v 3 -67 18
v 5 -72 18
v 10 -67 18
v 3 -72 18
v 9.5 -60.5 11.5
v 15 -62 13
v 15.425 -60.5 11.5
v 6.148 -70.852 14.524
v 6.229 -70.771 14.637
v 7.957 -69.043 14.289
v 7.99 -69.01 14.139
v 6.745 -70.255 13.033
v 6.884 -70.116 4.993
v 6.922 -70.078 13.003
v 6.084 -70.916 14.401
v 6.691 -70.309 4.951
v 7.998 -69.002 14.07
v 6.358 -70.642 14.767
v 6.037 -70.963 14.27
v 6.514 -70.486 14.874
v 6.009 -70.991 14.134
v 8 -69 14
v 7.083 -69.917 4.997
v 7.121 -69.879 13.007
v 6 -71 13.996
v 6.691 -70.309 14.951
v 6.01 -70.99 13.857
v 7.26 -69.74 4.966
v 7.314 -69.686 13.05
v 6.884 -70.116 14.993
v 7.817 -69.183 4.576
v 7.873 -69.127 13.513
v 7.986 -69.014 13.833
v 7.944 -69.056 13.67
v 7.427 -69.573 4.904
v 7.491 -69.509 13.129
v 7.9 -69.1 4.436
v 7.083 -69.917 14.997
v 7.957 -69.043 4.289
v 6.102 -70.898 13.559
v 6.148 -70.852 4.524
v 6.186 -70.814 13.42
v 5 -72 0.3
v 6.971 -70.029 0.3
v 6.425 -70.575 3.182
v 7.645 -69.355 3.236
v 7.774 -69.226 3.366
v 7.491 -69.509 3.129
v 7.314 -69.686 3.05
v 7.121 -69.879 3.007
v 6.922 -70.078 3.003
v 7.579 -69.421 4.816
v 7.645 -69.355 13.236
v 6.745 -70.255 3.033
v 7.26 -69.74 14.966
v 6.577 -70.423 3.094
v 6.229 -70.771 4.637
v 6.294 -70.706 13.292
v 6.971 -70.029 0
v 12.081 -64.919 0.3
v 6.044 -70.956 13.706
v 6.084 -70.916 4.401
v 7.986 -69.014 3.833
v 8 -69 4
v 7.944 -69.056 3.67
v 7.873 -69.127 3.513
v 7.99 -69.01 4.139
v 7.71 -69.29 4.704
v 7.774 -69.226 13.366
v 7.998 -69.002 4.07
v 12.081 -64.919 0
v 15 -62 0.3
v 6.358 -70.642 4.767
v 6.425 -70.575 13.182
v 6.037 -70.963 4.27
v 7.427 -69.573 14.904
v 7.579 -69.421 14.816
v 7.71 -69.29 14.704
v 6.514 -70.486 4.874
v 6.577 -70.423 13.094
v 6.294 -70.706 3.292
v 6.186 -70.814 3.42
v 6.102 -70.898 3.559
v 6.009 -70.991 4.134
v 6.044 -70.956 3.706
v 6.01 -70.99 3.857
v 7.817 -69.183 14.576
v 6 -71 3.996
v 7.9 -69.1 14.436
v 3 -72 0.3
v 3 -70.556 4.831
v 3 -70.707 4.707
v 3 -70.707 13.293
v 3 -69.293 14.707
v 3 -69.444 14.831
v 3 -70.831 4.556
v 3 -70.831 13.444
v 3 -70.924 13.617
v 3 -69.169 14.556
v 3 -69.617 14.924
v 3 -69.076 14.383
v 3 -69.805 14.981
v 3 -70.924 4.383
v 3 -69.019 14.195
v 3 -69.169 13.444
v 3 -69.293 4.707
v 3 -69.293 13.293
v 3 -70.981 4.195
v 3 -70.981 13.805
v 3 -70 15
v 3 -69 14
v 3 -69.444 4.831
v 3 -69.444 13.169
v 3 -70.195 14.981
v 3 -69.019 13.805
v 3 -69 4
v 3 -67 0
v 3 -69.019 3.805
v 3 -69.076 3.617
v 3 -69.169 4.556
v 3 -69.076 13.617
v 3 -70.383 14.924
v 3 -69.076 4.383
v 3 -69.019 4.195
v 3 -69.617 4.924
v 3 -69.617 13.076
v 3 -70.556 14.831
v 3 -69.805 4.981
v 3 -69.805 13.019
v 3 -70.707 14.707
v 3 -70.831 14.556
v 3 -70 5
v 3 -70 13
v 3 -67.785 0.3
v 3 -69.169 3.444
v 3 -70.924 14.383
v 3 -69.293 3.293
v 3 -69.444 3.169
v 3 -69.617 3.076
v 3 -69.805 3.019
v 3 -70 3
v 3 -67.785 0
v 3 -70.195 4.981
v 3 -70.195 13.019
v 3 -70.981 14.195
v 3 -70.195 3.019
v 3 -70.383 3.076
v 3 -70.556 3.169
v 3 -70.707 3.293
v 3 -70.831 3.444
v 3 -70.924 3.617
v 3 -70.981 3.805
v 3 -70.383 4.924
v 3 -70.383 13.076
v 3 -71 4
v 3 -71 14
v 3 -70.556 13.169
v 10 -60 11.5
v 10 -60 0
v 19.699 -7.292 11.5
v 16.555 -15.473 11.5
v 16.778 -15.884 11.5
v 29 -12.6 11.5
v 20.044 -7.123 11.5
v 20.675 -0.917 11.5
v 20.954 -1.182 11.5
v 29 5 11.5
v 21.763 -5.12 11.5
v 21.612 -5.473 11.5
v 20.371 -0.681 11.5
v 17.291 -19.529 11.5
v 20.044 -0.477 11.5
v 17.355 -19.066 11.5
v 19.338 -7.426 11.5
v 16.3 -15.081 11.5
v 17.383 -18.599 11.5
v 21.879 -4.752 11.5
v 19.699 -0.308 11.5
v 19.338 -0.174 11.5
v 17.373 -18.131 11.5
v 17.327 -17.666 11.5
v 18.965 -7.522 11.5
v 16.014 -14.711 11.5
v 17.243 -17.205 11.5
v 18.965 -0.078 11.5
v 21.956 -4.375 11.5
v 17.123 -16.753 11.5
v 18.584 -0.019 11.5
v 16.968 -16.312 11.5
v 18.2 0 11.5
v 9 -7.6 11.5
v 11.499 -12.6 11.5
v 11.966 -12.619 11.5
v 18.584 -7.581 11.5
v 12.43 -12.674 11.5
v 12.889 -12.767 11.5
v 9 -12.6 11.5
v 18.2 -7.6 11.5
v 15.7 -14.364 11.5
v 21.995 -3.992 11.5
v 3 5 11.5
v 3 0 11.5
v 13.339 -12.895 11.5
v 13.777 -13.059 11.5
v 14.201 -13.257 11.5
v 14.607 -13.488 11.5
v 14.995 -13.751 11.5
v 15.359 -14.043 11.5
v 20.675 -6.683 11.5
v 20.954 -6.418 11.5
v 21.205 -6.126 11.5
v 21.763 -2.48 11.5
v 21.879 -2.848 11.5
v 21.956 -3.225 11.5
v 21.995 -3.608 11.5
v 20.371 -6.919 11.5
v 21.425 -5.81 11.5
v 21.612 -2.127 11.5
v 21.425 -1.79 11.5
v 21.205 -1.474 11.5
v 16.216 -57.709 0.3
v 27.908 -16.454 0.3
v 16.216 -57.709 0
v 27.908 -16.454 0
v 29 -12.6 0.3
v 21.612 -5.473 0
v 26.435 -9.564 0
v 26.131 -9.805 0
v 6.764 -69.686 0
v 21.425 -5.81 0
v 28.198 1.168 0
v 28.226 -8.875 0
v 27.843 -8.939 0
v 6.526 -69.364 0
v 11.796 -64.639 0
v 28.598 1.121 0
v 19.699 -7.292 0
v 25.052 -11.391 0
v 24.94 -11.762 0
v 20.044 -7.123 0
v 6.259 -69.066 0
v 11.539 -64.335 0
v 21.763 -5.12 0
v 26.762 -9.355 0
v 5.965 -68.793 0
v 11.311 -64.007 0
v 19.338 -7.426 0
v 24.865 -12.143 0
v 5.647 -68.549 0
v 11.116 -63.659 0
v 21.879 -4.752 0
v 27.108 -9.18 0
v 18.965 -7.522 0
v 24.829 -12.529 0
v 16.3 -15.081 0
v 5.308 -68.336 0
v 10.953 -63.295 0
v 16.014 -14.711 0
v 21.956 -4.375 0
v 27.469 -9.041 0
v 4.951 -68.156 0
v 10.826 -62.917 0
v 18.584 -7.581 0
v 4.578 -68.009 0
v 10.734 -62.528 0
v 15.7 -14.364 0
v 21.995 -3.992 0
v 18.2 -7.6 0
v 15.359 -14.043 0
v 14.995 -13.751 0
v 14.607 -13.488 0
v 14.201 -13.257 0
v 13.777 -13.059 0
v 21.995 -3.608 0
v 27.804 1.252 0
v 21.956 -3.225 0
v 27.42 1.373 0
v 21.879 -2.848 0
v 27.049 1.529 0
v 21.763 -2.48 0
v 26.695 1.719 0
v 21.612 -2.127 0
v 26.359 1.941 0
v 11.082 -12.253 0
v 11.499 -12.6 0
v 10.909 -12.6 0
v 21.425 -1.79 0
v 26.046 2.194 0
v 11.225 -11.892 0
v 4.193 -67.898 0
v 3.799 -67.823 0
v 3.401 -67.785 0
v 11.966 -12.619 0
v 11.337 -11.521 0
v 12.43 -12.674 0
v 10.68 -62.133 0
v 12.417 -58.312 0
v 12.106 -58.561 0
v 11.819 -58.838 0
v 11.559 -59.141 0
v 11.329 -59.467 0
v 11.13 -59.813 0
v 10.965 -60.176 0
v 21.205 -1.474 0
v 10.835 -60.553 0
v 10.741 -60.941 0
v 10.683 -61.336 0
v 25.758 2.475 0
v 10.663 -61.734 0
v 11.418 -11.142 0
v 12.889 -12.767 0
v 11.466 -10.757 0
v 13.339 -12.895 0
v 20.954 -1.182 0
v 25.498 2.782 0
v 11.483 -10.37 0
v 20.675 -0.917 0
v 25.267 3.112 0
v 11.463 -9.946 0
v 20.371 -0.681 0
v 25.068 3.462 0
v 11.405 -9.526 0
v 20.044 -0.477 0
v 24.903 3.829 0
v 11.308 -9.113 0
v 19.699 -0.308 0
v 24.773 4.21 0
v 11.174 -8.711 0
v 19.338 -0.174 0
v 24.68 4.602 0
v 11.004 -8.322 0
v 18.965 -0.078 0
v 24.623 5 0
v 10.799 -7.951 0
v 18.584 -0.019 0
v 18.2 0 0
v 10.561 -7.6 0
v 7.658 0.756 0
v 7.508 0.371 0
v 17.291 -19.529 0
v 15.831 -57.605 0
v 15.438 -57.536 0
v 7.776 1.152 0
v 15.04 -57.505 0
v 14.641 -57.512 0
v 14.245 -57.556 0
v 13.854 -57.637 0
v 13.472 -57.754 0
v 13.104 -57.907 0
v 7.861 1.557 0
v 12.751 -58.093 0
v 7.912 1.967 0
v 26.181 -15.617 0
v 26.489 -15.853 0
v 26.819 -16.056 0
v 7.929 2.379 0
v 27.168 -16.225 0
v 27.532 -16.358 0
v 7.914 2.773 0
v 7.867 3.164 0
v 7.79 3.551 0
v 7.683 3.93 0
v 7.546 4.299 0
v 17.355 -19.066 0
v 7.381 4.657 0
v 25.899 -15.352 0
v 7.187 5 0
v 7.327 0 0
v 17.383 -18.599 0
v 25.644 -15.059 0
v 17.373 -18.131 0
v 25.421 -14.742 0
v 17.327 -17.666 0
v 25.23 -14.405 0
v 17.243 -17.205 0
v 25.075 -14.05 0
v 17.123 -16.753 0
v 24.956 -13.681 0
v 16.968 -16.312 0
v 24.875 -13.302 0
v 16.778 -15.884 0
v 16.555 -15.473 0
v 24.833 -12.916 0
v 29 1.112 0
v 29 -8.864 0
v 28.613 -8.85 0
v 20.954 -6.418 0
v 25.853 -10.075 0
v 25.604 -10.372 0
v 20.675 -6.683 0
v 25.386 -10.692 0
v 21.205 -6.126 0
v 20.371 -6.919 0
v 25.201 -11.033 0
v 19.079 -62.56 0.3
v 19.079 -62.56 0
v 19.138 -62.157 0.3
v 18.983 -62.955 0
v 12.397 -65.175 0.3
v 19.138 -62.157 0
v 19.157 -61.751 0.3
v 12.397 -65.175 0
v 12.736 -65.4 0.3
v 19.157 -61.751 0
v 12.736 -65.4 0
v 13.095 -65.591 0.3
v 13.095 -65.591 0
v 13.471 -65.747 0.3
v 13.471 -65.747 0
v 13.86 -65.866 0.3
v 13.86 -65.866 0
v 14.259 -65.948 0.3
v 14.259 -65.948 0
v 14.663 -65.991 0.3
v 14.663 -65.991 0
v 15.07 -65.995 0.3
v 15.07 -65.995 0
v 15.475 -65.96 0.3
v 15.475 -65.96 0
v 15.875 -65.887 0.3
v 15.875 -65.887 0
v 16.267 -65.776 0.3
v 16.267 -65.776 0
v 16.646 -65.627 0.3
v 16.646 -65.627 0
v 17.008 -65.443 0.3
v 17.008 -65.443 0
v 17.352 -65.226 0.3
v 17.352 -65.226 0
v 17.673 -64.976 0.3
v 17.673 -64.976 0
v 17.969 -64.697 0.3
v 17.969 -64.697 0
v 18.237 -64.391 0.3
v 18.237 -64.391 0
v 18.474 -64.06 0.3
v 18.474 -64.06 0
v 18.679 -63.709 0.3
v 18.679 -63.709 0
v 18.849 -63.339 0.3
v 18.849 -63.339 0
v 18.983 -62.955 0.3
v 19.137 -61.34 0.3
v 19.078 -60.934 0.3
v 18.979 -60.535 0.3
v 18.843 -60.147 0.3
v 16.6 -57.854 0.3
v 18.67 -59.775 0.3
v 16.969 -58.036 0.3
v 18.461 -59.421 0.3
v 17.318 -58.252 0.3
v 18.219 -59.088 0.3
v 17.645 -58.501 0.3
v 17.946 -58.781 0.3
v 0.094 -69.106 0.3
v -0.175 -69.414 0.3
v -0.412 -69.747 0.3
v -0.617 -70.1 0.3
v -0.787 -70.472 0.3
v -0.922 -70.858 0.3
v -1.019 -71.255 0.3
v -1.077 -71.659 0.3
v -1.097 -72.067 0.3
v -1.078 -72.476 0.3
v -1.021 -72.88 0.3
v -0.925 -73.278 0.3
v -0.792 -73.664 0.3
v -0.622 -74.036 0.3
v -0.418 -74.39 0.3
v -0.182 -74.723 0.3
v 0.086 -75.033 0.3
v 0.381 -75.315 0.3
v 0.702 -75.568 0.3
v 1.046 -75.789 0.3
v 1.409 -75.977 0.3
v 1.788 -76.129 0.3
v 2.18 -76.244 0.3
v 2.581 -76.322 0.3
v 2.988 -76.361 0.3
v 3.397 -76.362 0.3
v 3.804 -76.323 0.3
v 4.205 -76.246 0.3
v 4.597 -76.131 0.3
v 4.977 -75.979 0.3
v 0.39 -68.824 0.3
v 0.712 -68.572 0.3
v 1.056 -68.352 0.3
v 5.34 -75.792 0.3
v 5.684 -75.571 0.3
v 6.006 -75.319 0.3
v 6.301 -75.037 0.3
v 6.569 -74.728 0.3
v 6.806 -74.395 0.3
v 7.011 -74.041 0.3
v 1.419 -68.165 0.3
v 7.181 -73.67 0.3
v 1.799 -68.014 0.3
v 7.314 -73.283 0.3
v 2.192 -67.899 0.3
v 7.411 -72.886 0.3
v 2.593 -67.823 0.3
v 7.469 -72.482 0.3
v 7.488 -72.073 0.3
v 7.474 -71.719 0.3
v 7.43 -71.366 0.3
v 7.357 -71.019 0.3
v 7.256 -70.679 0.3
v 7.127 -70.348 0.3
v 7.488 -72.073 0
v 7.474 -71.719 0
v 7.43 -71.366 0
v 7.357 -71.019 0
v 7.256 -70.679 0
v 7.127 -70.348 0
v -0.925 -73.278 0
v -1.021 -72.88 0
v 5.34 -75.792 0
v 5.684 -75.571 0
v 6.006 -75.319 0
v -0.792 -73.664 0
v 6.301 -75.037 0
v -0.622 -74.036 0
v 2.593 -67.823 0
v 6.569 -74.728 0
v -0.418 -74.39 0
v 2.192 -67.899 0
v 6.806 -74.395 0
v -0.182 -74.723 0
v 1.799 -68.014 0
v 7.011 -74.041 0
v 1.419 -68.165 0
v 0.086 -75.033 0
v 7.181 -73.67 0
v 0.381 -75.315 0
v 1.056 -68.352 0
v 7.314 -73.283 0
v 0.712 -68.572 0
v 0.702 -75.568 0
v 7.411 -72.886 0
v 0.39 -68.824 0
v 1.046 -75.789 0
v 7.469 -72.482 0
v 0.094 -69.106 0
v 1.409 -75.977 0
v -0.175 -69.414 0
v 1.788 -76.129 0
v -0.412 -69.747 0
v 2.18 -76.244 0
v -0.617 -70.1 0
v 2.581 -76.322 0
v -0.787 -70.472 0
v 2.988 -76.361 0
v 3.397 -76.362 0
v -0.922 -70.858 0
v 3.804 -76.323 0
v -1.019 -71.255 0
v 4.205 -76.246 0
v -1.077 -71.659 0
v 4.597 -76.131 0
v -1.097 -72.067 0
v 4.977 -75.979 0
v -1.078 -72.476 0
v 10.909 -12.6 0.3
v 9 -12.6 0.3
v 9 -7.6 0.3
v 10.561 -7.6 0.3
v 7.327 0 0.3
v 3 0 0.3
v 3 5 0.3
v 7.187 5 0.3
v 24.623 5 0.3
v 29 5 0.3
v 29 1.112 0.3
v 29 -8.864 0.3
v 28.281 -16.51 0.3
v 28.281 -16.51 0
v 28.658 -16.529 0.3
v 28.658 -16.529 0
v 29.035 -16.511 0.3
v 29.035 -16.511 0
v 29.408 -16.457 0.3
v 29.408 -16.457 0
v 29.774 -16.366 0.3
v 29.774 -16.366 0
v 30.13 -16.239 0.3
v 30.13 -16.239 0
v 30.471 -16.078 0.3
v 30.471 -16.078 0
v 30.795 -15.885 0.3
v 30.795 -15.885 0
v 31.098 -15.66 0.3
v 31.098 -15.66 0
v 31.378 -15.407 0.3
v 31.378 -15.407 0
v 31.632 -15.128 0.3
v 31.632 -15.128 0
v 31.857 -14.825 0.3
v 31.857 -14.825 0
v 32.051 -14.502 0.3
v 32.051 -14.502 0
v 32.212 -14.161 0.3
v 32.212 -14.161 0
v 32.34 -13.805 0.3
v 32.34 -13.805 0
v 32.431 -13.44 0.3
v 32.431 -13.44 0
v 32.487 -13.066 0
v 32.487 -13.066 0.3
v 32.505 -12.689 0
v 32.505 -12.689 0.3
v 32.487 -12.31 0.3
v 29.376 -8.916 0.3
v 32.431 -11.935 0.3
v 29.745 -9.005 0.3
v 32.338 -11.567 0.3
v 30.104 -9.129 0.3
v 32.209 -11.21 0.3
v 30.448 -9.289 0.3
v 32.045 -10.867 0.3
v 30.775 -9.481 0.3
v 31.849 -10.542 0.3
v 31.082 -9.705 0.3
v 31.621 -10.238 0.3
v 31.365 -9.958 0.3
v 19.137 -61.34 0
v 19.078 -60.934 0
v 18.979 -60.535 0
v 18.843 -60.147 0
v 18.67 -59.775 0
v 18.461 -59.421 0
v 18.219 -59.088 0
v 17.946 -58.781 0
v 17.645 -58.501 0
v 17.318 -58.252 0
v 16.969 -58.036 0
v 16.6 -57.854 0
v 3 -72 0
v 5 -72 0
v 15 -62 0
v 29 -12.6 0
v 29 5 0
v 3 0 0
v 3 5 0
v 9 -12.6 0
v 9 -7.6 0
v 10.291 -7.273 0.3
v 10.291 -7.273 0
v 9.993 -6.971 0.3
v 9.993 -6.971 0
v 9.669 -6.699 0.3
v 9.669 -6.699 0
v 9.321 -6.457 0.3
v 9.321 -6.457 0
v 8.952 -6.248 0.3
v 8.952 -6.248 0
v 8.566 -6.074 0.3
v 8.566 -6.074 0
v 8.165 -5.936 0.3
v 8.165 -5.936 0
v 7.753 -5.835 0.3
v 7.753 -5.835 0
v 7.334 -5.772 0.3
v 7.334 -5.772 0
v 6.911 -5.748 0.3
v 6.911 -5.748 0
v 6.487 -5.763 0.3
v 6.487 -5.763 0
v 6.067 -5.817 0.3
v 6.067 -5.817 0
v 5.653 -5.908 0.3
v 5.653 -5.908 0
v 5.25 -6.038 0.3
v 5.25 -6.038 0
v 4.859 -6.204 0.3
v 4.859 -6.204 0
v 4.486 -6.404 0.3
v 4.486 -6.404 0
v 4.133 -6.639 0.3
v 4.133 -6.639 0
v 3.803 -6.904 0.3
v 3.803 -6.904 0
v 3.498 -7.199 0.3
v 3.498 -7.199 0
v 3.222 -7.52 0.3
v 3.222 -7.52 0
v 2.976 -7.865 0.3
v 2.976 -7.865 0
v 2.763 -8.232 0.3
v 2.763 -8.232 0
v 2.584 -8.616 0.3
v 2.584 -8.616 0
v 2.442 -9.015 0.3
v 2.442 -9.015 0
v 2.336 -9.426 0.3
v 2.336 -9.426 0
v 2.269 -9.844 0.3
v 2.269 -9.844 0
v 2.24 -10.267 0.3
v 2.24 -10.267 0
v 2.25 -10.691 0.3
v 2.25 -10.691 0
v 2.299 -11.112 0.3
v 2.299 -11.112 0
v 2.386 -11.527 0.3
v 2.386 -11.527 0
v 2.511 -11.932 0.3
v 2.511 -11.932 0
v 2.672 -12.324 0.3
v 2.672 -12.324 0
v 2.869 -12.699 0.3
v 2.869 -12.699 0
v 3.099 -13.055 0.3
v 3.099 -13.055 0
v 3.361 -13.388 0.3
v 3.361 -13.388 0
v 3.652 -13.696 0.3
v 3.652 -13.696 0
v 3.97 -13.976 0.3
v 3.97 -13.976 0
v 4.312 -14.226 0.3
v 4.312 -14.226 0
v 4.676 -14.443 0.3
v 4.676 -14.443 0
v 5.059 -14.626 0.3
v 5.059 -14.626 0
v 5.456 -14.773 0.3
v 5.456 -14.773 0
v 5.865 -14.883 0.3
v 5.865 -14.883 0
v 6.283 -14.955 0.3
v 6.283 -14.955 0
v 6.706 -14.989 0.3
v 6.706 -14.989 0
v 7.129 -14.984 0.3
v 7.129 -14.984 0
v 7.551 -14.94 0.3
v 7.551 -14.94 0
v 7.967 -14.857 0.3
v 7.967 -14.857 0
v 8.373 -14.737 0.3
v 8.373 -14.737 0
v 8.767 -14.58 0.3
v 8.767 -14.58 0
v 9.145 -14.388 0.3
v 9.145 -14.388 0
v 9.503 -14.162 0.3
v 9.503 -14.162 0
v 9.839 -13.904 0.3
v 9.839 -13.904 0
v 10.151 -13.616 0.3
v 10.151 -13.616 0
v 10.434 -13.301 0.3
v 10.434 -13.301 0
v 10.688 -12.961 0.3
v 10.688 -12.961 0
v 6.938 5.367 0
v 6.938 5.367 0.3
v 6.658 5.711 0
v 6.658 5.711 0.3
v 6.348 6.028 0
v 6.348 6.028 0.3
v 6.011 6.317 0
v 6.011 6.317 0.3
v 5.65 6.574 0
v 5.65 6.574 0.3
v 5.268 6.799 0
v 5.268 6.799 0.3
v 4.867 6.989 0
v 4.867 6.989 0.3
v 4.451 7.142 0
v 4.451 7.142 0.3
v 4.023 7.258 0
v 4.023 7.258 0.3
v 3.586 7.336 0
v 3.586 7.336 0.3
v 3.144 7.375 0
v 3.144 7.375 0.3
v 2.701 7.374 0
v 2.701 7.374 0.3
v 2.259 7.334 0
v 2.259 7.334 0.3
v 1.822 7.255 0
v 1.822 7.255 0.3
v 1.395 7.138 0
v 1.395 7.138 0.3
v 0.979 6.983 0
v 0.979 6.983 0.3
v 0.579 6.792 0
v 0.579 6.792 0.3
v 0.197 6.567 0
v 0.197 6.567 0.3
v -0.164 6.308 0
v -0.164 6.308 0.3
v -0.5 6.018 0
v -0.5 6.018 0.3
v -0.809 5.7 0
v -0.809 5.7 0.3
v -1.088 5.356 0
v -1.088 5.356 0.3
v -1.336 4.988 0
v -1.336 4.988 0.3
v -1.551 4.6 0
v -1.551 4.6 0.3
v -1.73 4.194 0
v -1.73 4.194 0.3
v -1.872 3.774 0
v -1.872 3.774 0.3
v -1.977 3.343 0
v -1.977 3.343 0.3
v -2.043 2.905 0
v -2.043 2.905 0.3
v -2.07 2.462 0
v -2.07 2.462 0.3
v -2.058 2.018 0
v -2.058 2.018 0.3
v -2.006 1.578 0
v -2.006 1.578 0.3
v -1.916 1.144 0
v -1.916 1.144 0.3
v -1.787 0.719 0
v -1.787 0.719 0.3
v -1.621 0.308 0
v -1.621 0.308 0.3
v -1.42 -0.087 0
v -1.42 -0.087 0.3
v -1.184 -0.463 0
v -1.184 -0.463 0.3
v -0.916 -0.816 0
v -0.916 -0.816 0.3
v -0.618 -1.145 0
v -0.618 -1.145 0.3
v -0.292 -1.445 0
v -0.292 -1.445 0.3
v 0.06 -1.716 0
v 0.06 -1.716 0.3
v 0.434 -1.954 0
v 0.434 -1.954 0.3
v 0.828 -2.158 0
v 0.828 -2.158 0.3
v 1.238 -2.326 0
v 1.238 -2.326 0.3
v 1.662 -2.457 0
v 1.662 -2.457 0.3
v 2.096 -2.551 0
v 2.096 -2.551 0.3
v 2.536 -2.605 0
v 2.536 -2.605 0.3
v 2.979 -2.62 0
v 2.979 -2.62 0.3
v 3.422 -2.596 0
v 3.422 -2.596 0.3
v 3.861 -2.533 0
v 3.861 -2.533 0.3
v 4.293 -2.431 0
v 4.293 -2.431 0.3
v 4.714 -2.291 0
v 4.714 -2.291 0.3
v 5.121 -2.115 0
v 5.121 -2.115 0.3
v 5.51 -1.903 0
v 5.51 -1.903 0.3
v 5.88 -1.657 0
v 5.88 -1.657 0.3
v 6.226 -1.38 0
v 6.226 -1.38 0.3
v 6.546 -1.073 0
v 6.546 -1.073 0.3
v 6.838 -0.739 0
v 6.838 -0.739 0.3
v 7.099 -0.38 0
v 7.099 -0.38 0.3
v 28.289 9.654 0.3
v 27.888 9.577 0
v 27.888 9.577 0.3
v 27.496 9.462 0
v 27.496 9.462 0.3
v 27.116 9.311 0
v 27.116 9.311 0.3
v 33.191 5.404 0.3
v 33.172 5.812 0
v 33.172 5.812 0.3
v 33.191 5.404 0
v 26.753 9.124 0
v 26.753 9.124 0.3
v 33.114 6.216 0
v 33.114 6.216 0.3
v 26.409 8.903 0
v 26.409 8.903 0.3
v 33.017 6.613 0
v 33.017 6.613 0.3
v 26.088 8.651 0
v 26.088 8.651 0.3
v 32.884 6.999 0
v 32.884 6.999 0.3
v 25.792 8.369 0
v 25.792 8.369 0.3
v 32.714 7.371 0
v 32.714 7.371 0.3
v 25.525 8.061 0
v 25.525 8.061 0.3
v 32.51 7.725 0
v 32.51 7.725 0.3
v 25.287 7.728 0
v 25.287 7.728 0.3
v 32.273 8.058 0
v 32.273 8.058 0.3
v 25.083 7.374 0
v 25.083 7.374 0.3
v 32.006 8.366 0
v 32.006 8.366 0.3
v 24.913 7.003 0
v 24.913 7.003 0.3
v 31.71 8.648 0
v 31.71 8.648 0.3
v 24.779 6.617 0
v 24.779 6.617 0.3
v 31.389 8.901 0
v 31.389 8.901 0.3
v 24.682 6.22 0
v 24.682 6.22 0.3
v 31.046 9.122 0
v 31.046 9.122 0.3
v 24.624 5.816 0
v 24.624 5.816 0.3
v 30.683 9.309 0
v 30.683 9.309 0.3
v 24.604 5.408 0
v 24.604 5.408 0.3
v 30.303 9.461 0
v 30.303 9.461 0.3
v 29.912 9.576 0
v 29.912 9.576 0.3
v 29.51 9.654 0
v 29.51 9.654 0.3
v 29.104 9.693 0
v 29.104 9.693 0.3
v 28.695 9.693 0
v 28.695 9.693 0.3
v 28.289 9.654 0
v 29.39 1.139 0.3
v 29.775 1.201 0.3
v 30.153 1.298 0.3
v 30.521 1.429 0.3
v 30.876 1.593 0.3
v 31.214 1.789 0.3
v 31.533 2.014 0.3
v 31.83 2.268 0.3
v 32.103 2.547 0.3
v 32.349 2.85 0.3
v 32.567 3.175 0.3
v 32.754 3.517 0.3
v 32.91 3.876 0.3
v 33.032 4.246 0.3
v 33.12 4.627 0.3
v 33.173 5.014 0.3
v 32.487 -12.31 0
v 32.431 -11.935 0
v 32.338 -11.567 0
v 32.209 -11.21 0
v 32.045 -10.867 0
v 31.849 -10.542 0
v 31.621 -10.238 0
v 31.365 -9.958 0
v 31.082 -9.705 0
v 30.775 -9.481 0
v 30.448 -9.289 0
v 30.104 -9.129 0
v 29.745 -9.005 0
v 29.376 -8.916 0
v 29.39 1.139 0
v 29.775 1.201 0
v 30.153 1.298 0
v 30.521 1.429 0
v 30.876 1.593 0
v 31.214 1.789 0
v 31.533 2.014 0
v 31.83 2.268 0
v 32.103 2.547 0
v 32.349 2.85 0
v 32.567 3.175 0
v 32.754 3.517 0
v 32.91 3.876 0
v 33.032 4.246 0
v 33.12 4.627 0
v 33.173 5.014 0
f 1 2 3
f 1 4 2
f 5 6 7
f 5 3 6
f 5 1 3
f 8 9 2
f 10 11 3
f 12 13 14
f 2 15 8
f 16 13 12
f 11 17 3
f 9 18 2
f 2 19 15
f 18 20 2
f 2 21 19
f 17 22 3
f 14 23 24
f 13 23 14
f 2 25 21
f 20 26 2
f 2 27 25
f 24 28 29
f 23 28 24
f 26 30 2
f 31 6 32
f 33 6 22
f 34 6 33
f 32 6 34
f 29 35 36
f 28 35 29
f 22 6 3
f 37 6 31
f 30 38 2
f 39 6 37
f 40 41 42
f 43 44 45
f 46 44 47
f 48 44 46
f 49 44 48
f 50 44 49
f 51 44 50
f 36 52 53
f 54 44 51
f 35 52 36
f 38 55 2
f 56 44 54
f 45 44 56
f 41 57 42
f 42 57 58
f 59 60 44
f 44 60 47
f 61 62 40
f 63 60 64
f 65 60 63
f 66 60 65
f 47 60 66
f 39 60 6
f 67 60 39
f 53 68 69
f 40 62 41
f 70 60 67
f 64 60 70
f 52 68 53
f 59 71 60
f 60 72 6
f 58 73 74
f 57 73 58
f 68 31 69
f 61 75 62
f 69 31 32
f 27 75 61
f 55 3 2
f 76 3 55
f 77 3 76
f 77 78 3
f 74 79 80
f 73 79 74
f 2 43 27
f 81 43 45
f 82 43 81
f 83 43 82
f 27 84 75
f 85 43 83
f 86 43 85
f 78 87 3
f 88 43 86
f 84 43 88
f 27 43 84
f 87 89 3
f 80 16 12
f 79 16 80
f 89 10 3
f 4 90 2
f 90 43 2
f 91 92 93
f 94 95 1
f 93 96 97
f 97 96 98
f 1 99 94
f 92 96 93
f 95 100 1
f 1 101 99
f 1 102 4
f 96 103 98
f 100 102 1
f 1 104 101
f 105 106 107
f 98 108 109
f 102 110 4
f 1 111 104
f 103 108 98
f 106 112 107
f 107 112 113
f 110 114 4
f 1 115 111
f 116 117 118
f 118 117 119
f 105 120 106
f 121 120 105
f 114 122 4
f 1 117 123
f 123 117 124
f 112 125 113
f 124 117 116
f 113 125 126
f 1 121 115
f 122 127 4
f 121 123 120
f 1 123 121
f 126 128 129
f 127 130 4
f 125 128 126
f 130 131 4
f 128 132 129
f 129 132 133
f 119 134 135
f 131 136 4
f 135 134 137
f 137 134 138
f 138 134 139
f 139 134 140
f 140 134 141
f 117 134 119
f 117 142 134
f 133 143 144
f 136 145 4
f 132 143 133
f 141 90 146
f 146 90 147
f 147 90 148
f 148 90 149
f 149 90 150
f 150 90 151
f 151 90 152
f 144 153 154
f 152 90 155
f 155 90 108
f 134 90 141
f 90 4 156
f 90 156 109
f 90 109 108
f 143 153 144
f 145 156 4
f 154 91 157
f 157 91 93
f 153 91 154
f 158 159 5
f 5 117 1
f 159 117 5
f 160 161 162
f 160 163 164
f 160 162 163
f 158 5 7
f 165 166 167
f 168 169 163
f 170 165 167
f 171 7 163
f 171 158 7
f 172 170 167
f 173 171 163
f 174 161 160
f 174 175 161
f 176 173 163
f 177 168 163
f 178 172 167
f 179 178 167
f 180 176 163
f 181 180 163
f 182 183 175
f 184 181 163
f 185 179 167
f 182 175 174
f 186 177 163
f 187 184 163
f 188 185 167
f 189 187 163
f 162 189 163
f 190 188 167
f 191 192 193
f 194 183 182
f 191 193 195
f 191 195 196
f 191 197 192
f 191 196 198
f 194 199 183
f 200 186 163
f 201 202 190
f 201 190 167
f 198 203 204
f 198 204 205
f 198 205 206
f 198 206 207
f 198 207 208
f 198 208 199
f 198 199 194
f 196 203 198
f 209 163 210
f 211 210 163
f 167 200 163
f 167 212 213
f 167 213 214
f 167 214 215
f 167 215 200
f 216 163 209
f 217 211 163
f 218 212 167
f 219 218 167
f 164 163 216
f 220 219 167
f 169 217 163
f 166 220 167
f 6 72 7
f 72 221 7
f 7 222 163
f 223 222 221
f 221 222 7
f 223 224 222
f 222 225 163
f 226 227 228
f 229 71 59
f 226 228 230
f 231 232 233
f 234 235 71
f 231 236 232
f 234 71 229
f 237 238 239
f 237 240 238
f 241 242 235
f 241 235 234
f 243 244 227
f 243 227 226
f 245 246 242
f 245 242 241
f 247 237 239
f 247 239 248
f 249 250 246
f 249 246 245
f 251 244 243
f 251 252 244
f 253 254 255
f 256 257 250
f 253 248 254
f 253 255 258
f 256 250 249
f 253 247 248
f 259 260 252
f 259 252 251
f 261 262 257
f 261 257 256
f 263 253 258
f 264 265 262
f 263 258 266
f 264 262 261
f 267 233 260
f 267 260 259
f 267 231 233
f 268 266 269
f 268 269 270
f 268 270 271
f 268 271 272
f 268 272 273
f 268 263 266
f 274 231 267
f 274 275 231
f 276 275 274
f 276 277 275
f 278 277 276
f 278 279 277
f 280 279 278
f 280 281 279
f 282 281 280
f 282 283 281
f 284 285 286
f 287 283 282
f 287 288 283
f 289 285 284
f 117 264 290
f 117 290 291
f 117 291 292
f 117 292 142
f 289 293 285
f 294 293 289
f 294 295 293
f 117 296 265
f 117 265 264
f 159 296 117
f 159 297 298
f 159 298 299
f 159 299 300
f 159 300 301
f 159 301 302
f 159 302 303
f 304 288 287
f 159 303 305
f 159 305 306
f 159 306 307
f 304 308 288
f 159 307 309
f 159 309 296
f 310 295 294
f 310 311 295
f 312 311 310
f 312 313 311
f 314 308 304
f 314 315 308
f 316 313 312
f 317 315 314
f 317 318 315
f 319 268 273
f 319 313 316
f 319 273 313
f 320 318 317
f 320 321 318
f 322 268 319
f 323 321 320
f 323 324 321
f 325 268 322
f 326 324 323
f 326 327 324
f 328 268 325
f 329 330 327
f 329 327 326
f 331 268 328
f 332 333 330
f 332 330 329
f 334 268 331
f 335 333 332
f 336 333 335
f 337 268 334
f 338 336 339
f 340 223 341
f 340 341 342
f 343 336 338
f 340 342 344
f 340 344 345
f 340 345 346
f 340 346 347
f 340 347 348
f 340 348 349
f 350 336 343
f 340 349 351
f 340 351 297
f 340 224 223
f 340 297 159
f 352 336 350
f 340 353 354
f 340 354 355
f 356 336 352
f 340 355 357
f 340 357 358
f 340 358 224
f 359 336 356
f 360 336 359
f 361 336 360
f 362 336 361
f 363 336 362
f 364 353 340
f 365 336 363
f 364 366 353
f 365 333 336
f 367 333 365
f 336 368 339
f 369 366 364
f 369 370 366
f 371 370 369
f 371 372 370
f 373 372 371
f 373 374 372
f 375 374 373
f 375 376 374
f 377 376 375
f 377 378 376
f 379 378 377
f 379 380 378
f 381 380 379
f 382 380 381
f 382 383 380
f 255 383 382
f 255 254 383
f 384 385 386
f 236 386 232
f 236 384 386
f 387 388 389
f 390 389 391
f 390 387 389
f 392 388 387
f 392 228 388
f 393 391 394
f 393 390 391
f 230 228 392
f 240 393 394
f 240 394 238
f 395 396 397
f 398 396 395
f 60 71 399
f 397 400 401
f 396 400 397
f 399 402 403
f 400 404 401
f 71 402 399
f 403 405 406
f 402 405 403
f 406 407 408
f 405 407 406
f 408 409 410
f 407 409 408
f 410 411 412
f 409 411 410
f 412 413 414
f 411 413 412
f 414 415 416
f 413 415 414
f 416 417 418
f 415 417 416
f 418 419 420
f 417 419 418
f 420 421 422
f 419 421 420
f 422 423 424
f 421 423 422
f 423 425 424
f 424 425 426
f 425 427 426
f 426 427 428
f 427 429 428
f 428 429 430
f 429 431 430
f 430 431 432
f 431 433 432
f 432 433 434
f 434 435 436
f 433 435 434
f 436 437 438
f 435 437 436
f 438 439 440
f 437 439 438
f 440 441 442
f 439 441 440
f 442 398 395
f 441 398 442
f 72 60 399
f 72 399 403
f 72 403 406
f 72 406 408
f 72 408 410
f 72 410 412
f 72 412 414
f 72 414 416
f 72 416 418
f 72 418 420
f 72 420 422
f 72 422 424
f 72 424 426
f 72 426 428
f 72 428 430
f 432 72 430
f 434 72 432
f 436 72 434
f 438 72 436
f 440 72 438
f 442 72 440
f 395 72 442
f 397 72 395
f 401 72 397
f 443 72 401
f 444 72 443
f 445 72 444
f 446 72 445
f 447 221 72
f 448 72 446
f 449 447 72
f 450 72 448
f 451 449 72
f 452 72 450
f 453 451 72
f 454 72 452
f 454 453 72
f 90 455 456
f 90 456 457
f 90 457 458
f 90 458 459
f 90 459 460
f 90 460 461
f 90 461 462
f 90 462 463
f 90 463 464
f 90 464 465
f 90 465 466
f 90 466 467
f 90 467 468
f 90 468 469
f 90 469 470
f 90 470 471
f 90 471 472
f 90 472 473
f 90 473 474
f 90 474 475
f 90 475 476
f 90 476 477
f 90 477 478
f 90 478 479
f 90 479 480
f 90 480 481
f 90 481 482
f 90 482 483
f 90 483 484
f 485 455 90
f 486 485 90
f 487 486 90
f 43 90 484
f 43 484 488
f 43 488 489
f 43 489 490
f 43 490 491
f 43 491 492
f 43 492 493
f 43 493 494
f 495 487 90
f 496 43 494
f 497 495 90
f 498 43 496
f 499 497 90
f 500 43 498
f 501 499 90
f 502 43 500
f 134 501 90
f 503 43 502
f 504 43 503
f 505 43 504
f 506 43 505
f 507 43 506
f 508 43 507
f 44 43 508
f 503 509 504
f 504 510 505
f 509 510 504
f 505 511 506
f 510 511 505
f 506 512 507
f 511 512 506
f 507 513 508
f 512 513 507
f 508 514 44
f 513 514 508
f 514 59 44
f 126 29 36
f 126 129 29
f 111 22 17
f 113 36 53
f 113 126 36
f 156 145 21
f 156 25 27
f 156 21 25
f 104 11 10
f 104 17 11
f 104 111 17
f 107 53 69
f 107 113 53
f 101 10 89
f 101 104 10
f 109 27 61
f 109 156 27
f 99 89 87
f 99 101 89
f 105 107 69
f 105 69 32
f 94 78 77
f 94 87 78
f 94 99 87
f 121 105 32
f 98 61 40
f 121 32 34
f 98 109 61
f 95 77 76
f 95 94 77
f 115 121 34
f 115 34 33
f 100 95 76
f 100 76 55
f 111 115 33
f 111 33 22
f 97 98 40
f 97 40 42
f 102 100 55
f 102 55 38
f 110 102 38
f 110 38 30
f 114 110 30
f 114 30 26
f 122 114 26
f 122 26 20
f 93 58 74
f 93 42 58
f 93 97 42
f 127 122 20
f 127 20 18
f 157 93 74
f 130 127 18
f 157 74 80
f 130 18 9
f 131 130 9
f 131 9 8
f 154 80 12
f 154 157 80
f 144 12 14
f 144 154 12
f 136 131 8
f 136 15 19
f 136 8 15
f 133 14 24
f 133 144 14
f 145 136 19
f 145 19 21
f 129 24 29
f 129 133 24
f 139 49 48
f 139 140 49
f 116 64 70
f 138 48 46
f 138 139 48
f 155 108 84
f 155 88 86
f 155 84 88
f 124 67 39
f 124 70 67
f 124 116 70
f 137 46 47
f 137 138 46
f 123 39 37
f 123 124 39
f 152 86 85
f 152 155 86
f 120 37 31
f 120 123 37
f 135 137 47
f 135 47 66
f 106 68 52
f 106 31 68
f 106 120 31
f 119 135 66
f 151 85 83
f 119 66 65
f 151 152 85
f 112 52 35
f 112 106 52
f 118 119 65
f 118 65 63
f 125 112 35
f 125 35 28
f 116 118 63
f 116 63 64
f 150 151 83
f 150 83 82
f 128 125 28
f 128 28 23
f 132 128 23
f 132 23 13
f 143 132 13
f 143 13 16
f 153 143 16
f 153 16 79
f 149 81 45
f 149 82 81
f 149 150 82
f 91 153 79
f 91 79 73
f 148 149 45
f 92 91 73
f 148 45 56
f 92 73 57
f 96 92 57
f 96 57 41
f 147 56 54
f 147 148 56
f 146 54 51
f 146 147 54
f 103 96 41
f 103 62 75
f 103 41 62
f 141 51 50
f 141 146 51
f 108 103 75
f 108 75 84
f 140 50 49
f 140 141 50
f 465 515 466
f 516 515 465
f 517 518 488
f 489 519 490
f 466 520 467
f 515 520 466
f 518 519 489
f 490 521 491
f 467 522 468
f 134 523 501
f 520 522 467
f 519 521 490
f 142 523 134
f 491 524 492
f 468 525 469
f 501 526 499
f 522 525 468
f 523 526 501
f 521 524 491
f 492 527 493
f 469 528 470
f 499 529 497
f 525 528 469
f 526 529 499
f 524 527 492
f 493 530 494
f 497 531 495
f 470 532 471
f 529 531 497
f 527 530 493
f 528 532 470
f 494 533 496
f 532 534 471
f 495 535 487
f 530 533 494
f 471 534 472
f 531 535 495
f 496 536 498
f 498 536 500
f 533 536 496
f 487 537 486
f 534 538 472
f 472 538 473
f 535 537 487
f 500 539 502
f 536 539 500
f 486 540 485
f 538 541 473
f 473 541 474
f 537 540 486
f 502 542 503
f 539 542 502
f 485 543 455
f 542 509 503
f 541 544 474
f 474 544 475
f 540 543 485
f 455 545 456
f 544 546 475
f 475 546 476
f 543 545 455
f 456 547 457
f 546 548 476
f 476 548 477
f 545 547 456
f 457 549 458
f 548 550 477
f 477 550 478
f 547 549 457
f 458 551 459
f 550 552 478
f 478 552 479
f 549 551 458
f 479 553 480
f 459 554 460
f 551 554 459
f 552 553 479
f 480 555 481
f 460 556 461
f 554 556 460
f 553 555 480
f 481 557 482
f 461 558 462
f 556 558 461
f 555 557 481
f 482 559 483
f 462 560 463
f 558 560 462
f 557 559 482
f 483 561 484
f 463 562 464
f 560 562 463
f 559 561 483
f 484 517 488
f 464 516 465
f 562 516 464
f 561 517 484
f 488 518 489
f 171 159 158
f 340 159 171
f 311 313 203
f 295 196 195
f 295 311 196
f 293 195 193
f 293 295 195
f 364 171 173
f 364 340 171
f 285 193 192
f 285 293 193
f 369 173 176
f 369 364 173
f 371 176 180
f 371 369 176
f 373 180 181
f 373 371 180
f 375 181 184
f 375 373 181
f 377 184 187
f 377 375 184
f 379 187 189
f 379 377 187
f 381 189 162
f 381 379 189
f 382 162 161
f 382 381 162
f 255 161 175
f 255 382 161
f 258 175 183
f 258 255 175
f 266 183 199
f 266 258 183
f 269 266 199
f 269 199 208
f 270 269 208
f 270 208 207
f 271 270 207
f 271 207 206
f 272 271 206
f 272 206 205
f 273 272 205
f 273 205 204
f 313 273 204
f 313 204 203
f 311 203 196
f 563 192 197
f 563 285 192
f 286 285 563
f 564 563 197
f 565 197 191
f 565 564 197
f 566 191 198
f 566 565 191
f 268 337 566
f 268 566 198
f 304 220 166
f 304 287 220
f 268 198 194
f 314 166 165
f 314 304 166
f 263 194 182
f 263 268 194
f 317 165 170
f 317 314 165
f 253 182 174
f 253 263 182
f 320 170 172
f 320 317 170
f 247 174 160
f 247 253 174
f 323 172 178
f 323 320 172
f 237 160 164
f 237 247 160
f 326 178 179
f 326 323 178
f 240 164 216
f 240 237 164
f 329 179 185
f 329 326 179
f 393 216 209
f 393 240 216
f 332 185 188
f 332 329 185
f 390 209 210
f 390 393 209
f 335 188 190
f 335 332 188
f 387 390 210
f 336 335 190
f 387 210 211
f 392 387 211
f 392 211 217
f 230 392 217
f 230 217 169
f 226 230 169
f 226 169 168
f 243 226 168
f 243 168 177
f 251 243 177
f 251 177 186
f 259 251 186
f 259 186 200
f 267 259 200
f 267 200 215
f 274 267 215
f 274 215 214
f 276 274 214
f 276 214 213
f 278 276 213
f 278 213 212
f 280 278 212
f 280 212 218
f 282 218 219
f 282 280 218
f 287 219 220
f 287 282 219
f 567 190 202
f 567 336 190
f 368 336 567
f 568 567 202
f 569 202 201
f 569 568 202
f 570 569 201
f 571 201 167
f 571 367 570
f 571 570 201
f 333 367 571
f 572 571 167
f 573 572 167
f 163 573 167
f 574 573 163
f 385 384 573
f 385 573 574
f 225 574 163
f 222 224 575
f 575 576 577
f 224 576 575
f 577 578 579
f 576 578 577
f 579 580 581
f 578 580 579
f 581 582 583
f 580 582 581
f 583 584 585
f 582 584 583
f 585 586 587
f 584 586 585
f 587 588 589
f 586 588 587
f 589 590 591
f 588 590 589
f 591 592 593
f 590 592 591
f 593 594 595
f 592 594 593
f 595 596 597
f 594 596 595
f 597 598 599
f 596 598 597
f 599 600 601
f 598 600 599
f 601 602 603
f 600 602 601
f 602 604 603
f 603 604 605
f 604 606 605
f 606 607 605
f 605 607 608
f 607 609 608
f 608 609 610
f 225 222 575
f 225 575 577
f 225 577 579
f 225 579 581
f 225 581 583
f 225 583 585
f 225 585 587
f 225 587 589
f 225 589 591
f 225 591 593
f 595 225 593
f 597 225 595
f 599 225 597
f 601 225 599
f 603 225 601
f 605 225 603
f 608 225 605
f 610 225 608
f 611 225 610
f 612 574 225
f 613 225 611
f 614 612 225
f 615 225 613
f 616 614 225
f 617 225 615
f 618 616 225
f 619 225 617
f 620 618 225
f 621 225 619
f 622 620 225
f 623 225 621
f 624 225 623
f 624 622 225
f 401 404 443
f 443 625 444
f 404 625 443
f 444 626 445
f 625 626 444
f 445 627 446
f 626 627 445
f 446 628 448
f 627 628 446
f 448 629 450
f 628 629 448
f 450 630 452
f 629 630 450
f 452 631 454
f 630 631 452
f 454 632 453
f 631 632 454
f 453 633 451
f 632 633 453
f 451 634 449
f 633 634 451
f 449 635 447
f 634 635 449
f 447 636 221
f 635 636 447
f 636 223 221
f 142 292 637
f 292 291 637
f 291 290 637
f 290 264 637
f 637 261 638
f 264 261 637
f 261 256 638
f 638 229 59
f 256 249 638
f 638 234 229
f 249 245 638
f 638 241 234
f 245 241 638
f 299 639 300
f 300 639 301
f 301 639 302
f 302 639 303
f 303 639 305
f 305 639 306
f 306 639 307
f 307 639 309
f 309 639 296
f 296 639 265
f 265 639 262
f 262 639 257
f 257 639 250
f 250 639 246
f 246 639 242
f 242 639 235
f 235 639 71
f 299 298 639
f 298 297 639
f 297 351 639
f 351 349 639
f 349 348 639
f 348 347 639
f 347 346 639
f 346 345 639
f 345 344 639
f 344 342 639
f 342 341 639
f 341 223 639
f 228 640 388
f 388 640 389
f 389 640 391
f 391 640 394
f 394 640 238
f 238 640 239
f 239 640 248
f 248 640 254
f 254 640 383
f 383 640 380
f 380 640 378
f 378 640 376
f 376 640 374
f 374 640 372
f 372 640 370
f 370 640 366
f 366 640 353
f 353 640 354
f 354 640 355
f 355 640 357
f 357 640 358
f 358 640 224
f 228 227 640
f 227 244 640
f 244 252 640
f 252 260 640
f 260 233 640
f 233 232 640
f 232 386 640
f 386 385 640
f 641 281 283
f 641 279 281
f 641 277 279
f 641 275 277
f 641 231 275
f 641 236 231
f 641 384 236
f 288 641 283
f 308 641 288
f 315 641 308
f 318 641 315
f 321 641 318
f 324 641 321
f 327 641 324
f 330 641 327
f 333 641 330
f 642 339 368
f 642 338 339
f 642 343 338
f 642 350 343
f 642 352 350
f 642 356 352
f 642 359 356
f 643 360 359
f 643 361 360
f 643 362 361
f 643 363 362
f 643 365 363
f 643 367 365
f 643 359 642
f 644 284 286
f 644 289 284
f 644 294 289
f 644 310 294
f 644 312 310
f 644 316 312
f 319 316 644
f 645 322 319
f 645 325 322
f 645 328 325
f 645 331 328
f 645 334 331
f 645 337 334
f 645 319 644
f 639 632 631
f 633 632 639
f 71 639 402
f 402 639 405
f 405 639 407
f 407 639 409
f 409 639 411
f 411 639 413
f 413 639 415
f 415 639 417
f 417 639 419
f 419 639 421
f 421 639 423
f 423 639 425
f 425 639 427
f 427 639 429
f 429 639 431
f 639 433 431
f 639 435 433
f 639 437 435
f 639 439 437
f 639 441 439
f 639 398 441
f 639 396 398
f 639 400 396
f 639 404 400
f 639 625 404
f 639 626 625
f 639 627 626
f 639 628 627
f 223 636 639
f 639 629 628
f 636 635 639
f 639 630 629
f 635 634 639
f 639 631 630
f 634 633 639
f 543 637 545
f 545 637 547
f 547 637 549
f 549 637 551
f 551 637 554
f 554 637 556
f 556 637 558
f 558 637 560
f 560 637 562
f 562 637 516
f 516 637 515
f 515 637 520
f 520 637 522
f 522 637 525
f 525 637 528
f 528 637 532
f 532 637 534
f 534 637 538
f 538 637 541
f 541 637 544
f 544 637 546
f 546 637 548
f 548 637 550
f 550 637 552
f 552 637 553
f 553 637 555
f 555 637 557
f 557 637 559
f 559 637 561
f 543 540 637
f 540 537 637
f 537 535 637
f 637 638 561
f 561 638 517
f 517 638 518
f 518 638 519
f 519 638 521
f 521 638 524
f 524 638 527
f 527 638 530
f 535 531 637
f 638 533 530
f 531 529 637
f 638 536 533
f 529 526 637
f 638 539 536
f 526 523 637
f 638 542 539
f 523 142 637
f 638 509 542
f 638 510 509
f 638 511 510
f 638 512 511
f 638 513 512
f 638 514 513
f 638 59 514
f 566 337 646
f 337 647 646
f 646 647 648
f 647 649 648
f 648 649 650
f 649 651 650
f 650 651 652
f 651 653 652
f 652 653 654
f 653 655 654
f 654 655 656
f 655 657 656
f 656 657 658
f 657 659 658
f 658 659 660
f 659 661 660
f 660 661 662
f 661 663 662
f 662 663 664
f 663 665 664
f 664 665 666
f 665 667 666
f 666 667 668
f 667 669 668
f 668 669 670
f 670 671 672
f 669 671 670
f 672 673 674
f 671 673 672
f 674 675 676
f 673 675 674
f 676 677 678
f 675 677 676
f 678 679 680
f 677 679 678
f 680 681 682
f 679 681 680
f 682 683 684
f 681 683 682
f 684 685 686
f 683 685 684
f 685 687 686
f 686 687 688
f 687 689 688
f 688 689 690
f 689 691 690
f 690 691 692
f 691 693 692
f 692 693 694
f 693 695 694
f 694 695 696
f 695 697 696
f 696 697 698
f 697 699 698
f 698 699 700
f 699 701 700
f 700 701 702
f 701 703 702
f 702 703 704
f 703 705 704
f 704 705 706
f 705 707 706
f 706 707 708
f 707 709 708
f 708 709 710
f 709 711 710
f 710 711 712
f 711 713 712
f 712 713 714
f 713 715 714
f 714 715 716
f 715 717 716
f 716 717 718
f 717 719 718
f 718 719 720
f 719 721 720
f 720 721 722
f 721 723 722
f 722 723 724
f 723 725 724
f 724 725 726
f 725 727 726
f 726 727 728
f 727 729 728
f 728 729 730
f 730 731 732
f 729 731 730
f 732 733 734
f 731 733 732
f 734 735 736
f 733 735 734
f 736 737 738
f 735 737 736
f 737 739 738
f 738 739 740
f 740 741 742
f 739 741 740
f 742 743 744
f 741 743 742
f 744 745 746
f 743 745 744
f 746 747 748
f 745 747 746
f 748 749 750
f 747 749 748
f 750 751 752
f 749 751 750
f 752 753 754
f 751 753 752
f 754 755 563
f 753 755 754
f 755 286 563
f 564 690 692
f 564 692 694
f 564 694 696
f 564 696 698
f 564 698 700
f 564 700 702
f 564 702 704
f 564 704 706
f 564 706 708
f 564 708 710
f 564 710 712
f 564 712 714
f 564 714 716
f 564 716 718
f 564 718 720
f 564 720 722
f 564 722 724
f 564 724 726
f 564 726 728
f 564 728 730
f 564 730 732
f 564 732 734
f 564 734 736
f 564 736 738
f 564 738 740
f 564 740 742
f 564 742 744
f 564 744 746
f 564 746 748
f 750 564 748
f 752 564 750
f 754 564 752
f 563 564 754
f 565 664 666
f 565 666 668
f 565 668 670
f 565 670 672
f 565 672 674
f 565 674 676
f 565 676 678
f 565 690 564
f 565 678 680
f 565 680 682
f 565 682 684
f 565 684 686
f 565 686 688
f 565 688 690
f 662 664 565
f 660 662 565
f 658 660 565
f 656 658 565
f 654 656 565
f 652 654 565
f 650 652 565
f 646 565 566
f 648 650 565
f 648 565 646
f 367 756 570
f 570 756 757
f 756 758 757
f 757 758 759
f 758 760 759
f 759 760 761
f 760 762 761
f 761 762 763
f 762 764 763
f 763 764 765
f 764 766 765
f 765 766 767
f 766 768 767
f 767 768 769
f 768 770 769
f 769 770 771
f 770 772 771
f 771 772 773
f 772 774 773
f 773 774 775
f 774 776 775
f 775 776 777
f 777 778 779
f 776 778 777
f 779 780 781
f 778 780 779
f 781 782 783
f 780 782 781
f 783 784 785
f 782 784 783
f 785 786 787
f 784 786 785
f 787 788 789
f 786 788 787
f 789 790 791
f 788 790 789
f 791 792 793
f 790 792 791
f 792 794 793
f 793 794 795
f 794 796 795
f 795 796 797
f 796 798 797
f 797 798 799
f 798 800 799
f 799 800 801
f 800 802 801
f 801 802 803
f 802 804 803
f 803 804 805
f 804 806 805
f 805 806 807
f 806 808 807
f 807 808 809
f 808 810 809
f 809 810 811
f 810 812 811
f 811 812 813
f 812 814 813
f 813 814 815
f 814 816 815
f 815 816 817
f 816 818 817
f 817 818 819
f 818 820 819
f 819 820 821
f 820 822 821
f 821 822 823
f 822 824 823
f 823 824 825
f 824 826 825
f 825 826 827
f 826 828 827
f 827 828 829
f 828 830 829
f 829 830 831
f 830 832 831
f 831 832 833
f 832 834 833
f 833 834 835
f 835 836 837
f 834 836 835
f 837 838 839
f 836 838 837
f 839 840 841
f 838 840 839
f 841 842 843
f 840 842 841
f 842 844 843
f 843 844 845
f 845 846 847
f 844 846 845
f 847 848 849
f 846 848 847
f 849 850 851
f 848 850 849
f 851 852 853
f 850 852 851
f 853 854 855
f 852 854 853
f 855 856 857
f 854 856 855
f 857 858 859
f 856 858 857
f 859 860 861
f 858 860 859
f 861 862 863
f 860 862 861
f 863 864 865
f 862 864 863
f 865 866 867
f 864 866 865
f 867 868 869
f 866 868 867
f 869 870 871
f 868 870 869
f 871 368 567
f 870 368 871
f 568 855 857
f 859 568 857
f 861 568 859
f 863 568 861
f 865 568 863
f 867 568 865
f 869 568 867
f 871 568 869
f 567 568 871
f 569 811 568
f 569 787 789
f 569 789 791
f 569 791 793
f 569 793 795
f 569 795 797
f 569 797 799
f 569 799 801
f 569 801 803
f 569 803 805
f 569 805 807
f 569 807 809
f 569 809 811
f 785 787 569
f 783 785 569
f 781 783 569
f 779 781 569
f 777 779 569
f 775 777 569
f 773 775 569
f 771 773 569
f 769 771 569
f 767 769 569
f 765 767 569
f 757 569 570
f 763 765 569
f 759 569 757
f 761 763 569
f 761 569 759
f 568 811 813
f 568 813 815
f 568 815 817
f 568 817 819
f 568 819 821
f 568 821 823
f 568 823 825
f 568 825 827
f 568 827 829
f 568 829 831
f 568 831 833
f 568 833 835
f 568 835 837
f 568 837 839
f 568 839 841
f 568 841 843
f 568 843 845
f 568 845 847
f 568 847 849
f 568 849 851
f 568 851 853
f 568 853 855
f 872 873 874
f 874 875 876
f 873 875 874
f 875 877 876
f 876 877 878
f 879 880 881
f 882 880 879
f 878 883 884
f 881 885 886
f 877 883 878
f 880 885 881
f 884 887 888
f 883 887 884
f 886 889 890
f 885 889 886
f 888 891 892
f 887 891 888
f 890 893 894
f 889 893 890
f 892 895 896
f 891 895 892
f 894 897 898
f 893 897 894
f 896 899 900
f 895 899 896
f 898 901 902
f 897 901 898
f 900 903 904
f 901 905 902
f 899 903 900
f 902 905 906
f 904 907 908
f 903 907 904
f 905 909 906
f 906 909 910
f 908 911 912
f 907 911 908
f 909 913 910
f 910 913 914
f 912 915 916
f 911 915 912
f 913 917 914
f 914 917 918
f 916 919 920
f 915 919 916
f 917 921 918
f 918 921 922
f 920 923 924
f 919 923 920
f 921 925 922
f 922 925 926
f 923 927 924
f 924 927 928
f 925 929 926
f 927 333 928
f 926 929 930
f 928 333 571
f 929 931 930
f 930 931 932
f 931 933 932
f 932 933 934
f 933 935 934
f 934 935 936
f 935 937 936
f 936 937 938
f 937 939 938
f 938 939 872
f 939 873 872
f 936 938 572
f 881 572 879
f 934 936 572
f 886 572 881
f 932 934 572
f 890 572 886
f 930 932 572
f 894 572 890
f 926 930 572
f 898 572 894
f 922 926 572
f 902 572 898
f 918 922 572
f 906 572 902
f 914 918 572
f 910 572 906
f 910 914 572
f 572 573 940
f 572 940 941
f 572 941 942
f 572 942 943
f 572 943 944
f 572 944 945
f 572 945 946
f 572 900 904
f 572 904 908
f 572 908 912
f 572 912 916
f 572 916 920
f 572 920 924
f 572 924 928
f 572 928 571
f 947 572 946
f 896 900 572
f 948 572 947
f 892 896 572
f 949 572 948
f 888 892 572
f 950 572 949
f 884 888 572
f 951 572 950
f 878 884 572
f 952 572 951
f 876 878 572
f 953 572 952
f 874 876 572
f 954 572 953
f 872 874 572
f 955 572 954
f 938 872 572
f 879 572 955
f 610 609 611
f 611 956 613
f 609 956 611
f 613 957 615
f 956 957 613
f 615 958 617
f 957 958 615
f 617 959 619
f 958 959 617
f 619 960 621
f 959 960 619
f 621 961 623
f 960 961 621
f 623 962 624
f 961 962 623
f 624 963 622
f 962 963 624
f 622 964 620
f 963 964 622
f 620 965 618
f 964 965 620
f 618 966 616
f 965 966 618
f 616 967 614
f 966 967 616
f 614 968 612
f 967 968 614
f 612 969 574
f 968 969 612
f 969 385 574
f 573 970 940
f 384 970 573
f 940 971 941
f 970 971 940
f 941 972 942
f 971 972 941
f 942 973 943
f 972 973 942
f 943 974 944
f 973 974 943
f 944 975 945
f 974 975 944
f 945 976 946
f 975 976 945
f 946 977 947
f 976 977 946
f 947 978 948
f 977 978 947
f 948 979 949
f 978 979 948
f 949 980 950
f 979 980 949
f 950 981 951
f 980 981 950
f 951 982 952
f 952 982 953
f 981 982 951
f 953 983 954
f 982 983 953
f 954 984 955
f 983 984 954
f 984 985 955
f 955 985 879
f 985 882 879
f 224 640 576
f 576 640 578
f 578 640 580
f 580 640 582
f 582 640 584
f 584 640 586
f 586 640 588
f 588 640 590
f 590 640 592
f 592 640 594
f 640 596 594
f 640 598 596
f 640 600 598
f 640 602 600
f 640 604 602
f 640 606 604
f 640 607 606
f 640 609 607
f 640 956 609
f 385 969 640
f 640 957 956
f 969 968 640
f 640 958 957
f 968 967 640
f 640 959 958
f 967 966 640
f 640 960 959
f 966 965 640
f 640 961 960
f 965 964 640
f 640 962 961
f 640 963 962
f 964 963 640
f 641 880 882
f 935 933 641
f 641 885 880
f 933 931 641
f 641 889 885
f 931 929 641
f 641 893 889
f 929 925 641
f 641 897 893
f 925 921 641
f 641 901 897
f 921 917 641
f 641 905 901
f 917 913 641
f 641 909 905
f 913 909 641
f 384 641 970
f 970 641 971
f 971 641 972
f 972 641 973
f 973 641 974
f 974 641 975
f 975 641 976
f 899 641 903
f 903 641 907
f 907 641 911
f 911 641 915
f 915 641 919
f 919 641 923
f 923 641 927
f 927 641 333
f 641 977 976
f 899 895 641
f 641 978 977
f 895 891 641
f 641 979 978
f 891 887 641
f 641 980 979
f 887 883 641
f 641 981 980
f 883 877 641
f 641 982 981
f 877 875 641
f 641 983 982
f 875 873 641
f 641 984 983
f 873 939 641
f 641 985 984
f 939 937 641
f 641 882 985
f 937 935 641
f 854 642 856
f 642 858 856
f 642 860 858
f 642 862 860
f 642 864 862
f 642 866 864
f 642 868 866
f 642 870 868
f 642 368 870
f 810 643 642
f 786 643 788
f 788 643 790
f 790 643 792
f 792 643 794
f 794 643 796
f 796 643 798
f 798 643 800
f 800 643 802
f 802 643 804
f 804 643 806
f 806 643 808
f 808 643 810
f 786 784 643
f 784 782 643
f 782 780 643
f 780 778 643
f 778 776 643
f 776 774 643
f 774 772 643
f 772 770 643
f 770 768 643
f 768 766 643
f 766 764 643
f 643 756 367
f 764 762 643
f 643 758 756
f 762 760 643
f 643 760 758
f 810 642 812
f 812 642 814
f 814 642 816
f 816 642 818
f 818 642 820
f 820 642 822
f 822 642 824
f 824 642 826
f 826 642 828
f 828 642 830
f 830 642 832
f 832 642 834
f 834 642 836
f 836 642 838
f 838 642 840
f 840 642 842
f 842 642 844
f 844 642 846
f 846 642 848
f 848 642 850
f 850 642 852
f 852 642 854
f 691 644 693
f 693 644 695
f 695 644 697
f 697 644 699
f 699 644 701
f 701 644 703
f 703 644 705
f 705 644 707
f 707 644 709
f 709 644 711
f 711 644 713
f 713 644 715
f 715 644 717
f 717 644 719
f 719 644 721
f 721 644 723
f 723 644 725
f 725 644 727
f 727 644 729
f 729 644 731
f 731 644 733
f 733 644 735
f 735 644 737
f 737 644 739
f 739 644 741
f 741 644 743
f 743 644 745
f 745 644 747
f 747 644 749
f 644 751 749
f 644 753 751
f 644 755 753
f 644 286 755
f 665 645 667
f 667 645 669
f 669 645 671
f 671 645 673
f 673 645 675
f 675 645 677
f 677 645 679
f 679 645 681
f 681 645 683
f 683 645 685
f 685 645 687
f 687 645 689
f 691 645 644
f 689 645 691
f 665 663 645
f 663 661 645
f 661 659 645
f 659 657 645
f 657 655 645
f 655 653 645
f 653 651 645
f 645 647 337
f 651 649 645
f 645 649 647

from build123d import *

# Parameters (mm, degrees)
SKETCH003_R      = 5
SKETCH003_R_2    = 4.293562
SKETCH003_R_3    = 4.292919
SKETCH003_R_4    = 4.247298
SKETCH003_R_5    = 4.621938
SKETCH003_R_6    = 3.839764
EXTRUDE003_DEPTH = 0.3
SKETCH001_R      = 1
EXTRUDE001_DEPTH = 15
EXTRUDE_DEPTH    = 20
EXTRUDE002_DEPTH = 50


with BuildPart() as punktyklejenia:
    # Sketch003 → Extrude003 (new body)
    with BuildSketch(Plane.XY):
        with Locations((2.929235, 2.379341)):
            Circle(SKETCH003_R)
        with Locations((28.897633, 5.404075)):
            Circle(SKETCH003_R_2)
        with Locations((3.195543, -72.073357)):
            Circle(SKETCH003_R_3)
        with Locations((14.909943, -61.750763)):
            Circle(SKETCH003_R_4)
        with Locations((6.860642, -10.369777)):
            Circle(SKETCH003_R_5)
        with Locations((28.665668, -12.689456)):
            Circle(SKETCH003_R_6)
    extrude(amount=EXTRUDE003_DEPTH)


with BuildPart() as extrude001:
    # Sketch001 → Extrude001 (new body, symmetric)
    with BuildSketch(Plane.YZ):
        with Locations((-70, 4)):
            Circle(SKETCH001_R)
    extrude(amount=EXTRUDE001_DEPTH, both=True)


with BuildPart() as clone:
    # Clone base: copy of Extrude001
    add(extrude001.part)


with BuildPart() as clone_1:
    # Clone placement: moved
    add(clone.part.moved(Location((0, 0, 10))))


with BuildPart() as profil:
    # DWire → Extrude (new body)
    with BuildSketch(Plane.XY):
        with BuildLine():
            Line((10, -60), (17.29084, -19.529001))
            ThreePointArc((17.29084, -19.529001), (16.014131, -14.71074), (11.498558, -12.6))
            Line((11.498558, -12.6), (9, -12.6))
            Line((9, -12.6), (9, -7.6))
            Line((9, -7.6), (18.2, -7.6))
            ThreePointArc((18.2, -7.6), (22, -3.8), (18.2, 0))
            Line((18.2, 0), (3, 0))
            Line((3, 0), (3, 5))
            Line((3, 5), (29, 5))
            Line((29, 5), (29, -12.6))
            Line((29, -12.6), (15, -62))
            Line((15, -62), (5, -72))
            Line((5, -72), (3, -72))
            Line((3, -72), (3, -67))
            Line((3, -67), (10, -60))
        make_face()
    extrude(amount=EXTRUDE_DEPTH)


with BuildPart() as fusion:
    # Sketch002 → Extrude002 (new body, symmetric)
    with BuildSketch(Plane.YZ):
        Polygon((-83.421997, 18), (-67, 18), (-60.5, 11.5), (43.07156, 11.5), (44.937477, -15.860289), (-84.74369, -15.860289), align=None)
    extrude(amount=EXTRUDE002_DEPTH, both=True)

    # Common: intersect profil
    add(profil.part, mode=Mode.INTERSECT)

    # Cut: cut Clone
    add(clone_1.part, mode=Mode.SUBTRACT)

    # Cut001: cut Extrude001
    add(extrude001.part, mode=Mode.SUBTRACT)

    # Fusion: union punktyklejenia
    add(punktyklejenia.part)


solid = fusion.part
